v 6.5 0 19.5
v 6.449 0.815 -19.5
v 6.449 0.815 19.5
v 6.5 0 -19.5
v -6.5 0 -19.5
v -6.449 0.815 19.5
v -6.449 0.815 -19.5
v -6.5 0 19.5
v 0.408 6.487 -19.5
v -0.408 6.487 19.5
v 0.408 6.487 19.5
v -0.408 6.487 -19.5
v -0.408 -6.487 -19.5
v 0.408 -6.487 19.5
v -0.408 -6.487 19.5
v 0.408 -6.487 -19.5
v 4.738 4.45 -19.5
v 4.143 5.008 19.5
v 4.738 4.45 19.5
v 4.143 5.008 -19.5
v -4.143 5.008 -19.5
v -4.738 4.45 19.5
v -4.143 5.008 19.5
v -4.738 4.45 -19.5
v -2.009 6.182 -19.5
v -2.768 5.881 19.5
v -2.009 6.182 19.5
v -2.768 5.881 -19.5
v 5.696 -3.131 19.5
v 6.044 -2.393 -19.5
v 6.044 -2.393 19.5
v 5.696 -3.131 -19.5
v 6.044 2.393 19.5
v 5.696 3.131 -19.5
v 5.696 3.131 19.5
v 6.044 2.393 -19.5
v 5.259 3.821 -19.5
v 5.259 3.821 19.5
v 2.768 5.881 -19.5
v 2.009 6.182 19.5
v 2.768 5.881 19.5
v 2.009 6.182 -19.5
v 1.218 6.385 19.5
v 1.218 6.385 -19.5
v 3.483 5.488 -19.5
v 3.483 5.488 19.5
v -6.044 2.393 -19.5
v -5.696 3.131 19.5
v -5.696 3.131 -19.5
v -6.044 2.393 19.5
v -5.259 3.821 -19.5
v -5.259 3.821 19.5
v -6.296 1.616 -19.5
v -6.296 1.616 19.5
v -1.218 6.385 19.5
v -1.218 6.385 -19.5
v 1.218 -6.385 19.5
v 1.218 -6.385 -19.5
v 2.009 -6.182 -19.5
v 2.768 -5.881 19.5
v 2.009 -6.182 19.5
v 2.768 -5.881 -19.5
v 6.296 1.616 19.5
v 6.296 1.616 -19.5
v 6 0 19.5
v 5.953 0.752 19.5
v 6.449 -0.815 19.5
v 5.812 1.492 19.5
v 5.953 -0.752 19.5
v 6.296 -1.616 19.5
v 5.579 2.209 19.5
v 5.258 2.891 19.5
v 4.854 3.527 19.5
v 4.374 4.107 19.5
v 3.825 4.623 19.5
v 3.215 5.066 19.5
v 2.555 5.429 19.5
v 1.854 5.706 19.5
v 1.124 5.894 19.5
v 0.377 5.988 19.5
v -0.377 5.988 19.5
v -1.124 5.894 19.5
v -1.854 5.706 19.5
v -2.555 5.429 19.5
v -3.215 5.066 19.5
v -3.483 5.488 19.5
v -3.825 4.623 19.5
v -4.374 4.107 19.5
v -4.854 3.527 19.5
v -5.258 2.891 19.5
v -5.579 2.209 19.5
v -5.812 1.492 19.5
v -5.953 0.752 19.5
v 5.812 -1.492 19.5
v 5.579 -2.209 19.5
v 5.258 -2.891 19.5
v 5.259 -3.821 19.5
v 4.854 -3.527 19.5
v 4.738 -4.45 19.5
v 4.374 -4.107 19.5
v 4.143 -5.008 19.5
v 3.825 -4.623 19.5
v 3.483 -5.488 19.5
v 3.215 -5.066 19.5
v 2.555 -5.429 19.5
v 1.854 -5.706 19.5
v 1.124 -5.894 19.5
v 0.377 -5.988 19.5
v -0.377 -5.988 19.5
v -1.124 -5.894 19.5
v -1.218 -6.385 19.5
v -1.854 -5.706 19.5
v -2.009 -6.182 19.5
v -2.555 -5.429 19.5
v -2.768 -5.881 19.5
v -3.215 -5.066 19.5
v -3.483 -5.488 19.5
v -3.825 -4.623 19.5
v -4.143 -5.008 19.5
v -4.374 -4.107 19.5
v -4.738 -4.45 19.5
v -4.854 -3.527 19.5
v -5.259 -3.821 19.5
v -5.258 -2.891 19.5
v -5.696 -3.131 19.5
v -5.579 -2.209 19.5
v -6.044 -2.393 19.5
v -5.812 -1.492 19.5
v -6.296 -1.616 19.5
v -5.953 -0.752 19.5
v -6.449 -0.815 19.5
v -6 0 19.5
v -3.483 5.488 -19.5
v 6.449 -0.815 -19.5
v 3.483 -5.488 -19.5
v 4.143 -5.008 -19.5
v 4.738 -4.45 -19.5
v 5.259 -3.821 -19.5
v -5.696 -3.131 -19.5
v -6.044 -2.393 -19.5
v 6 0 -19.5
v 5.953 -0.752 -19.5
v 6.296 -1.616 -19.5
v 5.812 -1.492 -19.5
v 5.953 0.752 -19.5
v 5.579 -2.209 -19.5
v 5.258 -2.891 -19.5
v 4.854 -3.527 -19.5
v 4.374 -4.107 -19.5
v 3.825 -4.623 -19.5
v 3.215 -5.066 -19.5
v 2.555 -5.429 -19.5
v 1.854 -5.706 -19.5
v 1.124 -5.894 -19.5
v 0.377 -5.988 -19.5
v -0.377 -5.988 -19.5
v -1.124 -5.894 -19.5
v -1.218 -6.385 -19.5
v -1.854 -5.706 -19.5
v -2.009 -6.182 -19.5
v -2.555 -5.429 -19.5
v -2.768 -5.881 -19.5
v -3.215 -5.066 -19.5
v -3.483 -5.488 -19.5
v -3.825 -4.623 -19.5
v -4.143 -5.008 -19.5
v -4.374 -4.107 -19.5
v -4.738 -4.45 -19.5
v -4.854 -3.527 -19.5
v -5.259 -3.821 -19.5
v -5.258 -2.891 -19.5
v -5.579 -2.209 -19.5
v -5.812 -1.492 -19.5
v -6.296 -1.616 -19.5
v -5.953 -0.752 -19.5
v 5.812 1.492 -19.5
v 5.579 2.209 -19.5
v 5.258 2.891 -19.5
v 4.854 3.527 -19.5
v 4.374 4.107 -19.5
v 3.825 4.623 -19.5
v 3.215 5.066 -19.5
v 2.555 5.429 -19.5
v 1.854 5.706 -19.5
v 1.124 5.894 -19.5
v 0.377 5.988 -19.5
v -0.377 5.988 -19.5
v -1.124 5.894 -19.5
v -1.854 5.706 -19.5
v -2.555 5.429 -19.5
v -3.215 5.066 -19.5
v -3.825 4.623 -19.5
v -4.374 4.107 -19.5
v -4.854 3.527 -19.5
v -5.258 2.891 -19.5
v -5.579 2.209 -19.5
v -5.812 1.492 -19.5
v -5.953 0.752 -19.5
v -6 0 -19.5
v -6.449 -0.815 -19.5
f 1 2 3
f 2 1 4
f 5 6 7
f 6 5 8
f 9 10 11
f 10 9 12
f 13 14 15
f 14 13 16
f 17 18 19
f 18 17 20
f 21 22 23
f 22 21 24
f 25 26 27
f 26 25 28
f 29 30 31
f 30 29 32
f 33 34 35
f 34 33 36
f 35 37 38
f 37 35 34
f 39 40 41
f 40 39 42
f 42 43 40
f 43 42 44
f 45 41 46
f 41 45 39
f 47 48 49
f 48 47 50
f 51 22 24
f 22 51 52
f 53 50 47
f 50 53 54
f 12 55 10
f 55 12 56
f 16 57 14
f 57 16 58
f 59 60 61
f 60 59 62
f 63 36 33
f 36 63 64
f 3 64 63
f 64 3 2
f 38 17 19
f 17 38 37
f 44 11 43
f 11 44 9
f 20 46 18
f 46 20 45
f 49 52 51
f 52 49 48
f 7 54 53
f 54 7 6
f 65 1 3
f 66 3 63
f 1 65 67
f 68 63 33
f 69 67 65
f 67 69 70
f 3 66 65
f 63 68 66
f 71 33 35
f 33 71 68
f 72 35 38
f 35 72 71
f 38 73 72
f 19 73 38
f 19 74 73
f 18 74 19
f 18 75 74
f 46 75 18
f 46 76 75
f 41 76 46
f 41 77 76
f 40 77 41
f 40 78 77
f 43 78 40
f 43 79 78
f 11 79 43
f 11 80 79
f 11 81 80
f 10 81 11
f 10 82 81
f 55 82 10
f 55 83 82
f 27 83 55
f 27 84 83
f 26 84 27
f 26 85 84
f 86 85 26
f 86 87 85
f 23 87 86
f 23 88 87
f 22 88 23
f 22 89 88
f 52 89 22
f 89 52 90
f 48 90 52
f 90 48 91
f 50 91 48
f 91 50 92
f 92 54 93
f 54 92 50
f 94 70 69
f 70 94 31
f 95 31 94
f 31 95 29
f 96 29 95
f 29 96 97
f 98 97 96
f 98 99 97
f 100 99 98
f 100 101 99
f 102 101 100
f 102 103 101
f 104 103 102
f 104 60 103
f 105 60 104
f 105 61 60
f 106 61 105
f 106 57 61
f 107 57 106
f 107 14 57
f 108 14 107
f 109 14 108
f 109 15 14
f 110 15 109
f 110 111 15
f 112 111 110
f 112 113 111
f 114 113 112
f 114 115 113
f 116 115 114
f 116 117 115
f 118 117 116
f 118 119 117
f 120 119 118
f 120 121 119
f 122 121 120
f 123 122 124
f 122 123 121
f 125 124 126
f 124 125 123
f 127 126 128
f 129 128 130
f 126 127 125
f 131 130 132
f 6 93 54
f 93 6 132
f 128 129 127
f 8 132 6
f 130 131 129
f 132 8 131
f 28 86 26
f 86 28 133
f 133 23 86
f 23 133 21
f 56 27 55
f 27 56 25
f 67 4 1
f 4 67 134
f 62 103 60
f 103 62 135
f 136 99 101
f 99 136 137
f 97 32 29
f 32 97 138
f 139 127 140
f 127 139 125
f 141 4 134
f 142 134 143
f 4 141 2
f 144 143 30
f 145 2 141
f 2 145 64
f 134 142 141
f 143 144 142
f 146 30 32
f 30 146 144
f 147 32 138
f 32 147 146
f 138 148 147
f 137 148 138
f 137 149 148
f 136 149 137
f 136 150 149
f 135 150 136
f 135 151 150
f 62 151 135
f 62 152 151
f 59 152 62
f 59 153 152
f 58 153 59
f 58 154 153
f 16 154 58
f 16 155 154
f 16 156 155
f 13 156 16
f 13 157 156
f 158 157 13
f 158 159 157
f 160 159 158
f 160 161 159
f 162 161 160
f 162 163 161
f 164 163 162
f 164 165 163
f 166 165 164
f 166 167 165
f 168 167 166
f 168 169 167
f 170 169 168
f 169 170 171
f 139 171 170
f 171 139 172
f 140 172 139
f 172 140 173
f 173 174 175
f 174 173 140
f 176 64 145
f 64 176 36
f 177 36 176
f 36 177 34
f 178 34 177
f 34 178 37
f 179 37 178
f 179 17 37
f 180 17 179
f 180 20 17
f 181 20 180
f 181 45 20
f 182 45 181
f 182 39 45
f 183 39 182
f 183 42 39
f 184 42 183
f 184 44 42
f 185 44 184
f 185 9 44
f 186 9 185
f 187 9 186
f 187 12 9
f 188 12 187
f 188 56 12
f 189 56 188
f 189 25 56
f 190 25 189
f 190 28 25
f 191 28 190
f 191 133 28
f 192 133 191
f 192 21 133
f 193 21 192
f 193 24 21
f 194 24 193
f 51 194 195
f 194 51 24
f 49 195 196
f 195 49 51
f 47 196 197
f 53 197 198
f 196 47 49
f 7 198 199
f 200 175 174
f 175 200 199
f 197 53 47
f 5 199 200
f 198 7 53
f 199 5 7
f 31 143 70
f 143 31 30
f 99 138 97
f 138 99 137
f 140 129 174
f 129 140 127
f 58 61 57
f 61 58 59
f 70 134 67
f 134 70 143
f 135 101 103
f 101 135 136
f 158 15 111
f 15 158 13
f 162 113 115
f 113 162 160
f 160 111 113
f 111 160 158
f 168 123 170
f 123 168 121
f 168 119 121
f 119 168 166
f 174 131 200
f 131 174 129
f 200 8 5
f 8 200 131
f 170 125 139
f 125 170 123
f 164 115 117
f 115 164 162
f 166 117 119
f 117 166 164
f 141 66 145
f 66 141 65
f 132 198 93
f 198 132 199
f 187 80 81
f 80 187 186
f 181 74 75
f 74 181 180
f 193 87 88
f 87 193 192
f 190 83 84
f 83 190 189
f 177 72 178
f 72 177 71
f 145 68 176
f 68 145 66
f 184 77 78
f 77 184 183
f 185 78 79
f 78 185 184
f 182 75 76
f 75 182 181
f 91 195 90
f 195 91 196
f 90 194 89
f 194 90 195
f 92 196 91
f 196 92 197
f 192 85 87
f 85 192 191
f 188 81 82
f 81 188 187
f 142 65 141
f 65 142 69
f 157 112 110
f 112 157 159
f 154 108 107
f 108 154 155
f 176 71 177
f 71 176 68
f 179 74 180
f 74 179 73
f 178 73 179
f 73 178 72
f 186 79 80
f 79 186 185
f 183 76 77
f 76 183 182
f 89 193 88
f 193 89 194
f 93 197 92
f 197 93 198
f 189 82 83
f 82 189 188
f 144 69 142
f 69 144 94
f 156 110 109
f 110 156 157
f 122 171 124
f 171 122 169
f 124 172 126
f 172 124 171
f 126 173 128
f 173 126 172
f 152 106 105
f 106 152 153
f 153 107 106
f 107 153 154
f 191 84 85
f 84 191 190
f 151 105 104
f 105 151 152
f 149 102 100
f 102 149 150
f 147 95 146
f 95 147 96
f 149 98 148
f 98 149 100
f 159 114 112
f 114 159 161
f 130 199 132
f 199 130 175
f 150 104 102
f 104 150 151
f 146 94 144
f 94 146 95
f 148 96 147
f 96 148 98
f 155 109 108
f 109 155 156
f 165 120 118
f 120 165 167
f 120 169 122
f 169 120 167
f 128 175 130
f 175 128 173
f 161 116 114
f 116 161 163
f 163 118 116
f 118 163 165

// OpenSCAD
$fn = 50;


difference() {
	union() {
		translate(v = [0, 0, -19.5000000000]) {
			cylinder(h = 39, r = 6.5000000000);
		}
	}
	union() {
		translate(v = [0, 0, -100.0000000000]) {
			cylinder(h = 200, r = 6);
		}
	}
}
